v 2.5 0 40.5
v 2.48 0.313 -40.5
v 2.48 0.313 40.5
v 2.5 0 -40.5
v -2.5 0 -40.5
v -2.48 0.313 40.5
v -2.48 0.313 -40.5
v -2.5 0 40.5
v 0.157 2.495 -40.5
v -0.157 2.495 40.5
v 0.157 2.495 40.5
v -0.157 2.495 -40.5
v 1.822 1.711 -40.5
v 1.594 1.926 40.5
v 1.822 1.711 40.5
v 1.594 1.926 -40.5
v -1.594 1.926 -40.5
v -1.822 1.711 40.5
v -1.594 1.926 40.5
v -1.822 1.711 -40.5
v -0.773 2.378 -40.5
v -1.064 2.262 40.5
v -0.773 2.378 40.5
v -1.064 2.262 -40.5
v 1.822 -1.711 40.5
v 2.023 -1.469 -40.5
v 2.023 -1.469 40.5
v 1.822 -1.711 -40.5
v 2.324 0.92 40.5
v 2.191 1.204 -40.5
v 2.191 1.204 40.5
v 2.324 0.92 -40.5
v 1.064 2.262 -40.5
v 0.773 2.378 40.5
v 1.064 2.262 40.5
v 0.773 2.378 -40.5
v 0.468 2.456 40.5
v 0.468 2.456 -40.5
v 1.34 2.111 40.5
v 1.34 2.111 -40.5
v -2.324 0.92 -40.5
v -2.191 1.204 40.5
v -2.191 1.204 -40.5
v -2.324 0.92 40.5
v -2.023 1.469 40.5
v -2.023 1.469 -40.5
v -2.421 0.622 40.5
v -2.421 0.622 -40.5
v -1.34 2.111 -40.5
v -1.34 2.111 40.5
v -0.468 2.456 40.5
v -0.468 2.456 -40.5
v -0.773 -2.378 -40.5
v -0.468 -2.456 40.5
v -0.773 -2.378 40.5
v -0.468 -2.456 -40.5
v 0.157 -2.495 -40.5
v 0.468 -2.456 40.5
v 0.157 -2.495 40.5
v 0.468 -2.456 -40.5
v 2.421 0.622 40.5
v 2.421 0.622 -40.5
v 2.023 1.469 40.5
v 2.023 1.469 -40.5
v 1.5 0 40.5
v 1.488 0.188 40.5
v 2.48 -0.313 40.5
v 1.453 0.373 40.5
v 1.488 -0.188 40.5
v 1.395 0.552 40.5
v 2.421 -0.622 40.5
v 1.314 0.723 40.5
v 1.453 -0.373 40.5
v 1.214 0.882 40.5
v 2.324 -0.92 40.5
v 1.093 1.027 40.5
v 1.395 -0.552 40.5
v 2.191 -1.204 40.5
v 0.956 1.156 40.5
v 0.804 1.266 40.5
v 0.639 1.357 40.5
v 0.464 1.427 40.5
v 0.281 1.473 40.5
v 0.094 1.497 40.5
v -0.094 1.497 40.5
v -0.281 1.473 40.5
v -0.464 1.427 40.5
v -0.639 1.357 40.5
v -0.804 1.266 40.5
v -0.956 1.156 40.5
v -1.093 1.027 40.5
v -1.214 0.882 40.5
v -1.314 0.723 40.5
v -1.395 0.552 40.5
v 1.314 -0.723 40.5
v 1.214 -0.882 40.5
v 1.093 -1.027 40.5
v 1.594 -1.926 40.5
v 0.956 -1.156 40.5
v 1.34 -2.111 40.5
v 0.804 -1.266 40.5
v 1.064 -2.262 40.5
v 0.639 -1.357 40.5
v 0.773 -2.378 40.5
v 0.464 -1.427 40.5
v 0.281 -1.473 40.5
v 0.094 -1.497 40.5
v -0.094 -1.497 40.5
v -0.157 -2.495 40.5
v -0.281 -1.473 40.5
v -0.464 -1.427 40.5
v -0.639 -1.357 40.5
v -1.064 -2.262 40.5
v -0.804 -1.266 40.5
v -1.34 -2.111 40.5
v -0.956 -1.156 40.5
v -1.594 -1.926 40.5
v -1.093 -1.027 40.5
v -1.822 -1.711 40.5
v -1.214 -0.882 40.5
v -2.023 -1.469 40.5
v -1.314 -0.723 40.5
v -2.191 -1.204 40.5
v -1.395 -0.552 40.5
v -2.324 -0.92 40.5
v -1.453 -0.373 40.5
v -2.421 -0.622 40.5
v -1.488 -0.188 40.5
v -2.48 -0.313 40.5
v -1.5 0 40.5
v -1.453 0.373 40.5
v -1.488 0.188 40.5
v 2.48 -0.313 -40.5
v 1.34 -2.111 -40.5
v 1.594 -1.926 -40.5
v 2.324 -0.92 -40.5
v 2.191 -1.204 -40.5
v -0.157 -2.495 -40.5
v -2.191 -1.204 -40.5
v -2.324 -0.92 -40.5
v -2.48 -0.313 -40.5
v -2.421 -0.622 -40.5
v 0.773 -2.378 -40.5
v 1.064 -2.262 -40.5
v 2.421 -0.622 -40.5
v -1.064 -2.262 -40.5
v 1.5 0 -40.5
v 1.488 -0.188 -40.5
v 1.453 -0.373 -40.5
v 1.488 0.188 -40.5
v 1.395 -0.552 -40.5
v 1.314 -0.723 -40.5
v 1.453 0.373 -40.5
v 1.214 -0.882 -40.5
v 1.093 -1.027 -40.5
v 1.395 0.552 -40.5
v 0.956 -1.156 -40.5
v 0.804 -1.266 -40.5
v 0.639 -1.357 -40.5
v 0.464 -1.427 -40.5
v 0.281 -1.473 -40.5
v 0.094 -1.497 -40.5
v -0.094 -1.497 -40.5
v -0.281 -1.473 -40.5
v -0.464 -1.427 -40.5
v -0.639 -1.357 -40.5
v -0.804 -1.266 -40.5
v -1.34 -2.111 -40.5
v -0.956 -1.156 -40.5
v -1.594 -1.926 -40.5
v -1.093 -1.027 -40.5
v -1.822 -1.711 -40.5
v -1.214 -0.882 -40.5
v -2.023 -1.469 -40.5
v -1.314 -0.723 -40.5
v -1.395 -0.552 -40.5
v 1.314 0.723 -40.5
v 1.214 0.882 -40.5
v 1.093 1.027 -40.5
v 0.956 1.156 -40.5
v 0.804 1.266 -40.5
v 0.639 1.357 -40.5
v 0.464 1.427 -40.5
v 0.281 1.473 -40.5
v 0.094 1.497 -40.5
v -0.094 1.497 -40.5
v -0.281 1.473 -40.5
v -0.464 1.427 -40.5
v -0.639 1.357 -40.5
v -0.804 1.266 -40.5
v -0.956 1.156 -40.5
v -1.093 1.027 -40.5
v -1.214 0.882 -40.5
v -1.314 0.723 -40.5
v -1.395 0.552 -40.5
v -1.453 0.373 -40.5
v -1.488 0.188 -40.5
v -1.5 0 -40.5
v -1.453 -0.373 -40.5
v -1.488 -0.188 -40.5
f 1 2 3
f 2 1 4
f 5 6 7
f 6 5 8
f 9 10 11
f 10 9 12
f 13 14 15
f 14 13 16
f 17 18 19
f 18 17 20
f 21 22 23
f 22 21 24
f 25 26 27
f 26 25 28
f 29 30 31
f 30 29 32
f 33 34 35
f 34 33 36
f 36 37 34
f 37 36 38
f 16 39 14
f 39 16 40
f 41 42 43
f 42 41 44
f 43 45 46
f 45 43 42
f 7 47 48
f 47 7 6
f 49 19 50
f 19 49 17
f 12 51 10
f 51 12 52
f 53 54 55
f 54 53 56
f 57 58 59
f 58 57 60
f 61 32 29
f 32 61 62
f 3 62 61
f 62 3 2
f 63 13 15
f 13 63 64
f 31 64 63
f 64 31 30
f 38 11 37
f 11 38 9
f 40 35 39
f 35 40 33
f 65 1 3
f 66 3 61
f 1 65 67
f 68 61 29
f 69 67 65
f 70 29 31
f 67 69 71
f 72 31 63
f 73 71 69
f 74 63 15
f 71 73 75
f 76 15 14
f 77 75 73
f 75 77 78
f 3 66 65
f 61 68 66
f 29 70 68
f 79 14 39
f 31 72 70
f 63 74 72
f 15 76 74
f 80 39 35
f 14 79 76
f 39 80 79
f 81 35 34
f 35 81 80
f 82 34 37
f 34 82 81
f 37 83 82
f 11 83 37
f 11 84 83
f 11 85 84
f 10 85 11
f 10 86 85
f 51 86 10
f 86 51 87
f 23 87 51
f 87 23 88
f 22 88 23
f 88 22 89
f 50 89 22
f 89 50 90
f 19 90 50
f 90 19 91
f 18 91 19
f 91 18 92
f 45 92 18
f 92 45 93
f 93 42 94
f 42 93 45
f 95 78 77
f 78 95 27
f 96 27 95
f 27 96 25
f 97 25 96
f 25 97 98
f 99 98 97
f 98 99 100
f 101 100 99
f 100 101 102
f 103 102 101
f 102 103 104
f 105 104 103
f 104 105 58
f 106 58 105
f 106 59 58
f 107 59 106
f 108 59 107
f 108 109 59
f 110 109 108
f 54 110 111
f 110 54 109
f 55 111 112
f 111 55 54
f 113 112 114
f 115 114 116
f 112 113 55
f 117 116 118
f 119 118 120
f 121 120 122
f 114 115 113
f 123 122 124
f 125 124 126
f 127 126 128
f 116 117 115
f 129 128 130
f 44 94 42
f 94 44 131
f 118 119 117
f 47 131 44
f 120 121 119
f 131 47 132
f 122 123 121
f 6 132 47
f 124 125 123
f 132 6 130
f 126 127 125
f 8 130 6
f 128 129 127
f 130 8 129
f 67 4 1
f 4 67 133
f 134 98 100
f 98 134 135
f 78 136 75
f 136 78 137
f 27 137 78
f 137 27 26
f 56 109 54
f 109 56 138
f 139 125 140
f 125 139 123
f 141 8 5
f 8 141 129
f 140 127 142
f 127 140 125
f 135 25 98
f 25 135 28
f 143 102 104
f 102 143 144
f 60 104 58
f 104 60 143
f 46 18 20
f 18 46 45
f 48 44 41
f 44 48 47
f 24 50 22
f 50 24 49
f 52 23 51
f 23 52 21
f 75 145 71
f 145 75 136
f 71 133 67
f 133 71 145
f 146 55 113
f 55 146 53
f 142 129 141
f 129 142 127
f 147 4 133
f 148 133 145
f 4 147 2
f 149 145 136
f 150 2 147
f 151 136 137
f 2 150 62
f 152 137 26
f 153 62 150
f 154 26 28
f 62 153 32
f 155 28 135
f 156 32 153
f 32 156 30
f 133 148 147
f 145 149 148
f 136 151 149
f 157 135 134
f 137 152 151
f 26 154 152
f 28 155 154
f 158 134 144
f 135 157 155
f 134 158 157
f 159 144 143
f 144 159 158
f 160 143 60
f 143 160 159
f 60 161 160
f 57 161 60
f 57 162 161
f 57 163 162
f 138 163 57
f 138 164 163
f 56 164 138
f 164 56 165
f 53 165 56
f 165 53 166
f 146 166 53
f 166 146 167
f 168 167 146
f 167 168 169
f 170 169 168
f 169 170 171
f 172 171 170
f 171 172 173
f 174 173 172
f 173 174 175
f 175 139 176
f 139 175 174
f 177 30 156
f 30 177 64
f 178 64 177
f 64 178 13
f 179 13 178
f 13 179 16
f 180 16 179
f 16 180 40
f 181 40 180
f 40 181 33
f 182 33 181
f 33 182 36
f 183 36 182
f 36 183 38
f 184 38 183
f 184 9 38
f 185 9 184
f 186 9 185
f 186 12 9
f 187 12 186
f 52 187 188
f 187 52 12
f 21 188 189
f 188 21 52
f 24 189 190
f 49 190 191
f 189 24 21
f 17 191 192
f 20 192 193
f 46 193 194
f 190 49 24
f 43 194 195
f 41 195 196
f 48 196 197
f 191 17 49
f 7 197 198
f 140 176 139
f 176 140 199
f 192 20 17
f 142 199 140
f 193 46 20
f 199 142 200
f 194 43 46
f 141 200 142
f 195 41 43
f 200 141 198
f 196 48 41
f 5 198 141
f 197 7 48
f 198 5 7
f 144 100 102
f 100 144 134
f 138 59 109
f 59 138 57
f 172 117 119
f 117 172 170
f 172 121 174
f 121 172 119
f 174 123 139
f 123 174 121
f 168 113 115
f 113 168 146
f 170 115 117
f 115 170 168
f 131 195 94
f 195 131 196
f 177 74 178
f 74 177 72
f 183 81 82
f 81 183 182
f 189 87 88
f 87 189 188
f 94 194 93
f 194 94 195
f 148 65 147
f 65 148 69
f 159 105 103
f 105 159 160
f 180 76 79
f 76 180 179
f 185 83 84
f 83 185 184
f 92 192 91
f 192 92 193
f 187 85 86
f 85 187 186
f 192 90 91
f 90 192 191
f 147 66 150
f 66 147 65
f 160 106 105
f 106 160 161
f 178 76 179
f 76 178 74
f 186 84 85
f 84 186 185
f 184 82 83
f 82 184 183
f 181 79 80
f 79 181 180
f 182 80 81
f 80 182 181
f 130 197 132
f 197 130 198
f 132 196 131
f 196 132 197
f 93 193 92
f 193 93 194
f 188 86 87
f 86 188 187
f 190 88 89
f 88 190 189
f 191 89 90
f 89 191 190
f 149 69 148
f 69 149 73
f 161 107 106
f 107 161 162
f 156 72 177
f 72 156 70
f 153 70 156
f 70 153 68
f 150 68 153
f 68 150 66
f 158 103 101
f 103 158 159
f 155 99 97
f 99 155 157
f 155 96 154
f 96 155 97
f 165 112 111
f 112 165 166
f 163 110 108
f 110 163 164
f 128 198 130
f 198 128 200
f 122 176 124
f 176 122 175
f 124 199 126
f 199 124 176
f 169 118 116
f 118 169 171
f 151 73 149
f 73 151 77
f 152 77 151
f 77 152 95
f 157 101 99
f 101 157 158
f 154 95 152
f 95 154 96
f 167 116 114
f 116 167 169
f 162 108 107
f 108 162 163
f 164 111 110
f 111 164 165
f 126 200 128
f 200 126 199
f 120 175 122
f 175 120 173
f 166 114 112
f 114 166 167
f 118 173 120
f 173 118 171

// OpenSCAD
$fn = 50;


difference() {
	union() {
		translate(v = [0, 0, -40.5000000000]) {
			cylinder(h = 81, r = 2.5000000000);
		}
	}
	union() {
		translate(v = [0, 0, -100.0000000000]) {
			cylinder(h = 200, r = 1.5000000000);
		}
	}
}
